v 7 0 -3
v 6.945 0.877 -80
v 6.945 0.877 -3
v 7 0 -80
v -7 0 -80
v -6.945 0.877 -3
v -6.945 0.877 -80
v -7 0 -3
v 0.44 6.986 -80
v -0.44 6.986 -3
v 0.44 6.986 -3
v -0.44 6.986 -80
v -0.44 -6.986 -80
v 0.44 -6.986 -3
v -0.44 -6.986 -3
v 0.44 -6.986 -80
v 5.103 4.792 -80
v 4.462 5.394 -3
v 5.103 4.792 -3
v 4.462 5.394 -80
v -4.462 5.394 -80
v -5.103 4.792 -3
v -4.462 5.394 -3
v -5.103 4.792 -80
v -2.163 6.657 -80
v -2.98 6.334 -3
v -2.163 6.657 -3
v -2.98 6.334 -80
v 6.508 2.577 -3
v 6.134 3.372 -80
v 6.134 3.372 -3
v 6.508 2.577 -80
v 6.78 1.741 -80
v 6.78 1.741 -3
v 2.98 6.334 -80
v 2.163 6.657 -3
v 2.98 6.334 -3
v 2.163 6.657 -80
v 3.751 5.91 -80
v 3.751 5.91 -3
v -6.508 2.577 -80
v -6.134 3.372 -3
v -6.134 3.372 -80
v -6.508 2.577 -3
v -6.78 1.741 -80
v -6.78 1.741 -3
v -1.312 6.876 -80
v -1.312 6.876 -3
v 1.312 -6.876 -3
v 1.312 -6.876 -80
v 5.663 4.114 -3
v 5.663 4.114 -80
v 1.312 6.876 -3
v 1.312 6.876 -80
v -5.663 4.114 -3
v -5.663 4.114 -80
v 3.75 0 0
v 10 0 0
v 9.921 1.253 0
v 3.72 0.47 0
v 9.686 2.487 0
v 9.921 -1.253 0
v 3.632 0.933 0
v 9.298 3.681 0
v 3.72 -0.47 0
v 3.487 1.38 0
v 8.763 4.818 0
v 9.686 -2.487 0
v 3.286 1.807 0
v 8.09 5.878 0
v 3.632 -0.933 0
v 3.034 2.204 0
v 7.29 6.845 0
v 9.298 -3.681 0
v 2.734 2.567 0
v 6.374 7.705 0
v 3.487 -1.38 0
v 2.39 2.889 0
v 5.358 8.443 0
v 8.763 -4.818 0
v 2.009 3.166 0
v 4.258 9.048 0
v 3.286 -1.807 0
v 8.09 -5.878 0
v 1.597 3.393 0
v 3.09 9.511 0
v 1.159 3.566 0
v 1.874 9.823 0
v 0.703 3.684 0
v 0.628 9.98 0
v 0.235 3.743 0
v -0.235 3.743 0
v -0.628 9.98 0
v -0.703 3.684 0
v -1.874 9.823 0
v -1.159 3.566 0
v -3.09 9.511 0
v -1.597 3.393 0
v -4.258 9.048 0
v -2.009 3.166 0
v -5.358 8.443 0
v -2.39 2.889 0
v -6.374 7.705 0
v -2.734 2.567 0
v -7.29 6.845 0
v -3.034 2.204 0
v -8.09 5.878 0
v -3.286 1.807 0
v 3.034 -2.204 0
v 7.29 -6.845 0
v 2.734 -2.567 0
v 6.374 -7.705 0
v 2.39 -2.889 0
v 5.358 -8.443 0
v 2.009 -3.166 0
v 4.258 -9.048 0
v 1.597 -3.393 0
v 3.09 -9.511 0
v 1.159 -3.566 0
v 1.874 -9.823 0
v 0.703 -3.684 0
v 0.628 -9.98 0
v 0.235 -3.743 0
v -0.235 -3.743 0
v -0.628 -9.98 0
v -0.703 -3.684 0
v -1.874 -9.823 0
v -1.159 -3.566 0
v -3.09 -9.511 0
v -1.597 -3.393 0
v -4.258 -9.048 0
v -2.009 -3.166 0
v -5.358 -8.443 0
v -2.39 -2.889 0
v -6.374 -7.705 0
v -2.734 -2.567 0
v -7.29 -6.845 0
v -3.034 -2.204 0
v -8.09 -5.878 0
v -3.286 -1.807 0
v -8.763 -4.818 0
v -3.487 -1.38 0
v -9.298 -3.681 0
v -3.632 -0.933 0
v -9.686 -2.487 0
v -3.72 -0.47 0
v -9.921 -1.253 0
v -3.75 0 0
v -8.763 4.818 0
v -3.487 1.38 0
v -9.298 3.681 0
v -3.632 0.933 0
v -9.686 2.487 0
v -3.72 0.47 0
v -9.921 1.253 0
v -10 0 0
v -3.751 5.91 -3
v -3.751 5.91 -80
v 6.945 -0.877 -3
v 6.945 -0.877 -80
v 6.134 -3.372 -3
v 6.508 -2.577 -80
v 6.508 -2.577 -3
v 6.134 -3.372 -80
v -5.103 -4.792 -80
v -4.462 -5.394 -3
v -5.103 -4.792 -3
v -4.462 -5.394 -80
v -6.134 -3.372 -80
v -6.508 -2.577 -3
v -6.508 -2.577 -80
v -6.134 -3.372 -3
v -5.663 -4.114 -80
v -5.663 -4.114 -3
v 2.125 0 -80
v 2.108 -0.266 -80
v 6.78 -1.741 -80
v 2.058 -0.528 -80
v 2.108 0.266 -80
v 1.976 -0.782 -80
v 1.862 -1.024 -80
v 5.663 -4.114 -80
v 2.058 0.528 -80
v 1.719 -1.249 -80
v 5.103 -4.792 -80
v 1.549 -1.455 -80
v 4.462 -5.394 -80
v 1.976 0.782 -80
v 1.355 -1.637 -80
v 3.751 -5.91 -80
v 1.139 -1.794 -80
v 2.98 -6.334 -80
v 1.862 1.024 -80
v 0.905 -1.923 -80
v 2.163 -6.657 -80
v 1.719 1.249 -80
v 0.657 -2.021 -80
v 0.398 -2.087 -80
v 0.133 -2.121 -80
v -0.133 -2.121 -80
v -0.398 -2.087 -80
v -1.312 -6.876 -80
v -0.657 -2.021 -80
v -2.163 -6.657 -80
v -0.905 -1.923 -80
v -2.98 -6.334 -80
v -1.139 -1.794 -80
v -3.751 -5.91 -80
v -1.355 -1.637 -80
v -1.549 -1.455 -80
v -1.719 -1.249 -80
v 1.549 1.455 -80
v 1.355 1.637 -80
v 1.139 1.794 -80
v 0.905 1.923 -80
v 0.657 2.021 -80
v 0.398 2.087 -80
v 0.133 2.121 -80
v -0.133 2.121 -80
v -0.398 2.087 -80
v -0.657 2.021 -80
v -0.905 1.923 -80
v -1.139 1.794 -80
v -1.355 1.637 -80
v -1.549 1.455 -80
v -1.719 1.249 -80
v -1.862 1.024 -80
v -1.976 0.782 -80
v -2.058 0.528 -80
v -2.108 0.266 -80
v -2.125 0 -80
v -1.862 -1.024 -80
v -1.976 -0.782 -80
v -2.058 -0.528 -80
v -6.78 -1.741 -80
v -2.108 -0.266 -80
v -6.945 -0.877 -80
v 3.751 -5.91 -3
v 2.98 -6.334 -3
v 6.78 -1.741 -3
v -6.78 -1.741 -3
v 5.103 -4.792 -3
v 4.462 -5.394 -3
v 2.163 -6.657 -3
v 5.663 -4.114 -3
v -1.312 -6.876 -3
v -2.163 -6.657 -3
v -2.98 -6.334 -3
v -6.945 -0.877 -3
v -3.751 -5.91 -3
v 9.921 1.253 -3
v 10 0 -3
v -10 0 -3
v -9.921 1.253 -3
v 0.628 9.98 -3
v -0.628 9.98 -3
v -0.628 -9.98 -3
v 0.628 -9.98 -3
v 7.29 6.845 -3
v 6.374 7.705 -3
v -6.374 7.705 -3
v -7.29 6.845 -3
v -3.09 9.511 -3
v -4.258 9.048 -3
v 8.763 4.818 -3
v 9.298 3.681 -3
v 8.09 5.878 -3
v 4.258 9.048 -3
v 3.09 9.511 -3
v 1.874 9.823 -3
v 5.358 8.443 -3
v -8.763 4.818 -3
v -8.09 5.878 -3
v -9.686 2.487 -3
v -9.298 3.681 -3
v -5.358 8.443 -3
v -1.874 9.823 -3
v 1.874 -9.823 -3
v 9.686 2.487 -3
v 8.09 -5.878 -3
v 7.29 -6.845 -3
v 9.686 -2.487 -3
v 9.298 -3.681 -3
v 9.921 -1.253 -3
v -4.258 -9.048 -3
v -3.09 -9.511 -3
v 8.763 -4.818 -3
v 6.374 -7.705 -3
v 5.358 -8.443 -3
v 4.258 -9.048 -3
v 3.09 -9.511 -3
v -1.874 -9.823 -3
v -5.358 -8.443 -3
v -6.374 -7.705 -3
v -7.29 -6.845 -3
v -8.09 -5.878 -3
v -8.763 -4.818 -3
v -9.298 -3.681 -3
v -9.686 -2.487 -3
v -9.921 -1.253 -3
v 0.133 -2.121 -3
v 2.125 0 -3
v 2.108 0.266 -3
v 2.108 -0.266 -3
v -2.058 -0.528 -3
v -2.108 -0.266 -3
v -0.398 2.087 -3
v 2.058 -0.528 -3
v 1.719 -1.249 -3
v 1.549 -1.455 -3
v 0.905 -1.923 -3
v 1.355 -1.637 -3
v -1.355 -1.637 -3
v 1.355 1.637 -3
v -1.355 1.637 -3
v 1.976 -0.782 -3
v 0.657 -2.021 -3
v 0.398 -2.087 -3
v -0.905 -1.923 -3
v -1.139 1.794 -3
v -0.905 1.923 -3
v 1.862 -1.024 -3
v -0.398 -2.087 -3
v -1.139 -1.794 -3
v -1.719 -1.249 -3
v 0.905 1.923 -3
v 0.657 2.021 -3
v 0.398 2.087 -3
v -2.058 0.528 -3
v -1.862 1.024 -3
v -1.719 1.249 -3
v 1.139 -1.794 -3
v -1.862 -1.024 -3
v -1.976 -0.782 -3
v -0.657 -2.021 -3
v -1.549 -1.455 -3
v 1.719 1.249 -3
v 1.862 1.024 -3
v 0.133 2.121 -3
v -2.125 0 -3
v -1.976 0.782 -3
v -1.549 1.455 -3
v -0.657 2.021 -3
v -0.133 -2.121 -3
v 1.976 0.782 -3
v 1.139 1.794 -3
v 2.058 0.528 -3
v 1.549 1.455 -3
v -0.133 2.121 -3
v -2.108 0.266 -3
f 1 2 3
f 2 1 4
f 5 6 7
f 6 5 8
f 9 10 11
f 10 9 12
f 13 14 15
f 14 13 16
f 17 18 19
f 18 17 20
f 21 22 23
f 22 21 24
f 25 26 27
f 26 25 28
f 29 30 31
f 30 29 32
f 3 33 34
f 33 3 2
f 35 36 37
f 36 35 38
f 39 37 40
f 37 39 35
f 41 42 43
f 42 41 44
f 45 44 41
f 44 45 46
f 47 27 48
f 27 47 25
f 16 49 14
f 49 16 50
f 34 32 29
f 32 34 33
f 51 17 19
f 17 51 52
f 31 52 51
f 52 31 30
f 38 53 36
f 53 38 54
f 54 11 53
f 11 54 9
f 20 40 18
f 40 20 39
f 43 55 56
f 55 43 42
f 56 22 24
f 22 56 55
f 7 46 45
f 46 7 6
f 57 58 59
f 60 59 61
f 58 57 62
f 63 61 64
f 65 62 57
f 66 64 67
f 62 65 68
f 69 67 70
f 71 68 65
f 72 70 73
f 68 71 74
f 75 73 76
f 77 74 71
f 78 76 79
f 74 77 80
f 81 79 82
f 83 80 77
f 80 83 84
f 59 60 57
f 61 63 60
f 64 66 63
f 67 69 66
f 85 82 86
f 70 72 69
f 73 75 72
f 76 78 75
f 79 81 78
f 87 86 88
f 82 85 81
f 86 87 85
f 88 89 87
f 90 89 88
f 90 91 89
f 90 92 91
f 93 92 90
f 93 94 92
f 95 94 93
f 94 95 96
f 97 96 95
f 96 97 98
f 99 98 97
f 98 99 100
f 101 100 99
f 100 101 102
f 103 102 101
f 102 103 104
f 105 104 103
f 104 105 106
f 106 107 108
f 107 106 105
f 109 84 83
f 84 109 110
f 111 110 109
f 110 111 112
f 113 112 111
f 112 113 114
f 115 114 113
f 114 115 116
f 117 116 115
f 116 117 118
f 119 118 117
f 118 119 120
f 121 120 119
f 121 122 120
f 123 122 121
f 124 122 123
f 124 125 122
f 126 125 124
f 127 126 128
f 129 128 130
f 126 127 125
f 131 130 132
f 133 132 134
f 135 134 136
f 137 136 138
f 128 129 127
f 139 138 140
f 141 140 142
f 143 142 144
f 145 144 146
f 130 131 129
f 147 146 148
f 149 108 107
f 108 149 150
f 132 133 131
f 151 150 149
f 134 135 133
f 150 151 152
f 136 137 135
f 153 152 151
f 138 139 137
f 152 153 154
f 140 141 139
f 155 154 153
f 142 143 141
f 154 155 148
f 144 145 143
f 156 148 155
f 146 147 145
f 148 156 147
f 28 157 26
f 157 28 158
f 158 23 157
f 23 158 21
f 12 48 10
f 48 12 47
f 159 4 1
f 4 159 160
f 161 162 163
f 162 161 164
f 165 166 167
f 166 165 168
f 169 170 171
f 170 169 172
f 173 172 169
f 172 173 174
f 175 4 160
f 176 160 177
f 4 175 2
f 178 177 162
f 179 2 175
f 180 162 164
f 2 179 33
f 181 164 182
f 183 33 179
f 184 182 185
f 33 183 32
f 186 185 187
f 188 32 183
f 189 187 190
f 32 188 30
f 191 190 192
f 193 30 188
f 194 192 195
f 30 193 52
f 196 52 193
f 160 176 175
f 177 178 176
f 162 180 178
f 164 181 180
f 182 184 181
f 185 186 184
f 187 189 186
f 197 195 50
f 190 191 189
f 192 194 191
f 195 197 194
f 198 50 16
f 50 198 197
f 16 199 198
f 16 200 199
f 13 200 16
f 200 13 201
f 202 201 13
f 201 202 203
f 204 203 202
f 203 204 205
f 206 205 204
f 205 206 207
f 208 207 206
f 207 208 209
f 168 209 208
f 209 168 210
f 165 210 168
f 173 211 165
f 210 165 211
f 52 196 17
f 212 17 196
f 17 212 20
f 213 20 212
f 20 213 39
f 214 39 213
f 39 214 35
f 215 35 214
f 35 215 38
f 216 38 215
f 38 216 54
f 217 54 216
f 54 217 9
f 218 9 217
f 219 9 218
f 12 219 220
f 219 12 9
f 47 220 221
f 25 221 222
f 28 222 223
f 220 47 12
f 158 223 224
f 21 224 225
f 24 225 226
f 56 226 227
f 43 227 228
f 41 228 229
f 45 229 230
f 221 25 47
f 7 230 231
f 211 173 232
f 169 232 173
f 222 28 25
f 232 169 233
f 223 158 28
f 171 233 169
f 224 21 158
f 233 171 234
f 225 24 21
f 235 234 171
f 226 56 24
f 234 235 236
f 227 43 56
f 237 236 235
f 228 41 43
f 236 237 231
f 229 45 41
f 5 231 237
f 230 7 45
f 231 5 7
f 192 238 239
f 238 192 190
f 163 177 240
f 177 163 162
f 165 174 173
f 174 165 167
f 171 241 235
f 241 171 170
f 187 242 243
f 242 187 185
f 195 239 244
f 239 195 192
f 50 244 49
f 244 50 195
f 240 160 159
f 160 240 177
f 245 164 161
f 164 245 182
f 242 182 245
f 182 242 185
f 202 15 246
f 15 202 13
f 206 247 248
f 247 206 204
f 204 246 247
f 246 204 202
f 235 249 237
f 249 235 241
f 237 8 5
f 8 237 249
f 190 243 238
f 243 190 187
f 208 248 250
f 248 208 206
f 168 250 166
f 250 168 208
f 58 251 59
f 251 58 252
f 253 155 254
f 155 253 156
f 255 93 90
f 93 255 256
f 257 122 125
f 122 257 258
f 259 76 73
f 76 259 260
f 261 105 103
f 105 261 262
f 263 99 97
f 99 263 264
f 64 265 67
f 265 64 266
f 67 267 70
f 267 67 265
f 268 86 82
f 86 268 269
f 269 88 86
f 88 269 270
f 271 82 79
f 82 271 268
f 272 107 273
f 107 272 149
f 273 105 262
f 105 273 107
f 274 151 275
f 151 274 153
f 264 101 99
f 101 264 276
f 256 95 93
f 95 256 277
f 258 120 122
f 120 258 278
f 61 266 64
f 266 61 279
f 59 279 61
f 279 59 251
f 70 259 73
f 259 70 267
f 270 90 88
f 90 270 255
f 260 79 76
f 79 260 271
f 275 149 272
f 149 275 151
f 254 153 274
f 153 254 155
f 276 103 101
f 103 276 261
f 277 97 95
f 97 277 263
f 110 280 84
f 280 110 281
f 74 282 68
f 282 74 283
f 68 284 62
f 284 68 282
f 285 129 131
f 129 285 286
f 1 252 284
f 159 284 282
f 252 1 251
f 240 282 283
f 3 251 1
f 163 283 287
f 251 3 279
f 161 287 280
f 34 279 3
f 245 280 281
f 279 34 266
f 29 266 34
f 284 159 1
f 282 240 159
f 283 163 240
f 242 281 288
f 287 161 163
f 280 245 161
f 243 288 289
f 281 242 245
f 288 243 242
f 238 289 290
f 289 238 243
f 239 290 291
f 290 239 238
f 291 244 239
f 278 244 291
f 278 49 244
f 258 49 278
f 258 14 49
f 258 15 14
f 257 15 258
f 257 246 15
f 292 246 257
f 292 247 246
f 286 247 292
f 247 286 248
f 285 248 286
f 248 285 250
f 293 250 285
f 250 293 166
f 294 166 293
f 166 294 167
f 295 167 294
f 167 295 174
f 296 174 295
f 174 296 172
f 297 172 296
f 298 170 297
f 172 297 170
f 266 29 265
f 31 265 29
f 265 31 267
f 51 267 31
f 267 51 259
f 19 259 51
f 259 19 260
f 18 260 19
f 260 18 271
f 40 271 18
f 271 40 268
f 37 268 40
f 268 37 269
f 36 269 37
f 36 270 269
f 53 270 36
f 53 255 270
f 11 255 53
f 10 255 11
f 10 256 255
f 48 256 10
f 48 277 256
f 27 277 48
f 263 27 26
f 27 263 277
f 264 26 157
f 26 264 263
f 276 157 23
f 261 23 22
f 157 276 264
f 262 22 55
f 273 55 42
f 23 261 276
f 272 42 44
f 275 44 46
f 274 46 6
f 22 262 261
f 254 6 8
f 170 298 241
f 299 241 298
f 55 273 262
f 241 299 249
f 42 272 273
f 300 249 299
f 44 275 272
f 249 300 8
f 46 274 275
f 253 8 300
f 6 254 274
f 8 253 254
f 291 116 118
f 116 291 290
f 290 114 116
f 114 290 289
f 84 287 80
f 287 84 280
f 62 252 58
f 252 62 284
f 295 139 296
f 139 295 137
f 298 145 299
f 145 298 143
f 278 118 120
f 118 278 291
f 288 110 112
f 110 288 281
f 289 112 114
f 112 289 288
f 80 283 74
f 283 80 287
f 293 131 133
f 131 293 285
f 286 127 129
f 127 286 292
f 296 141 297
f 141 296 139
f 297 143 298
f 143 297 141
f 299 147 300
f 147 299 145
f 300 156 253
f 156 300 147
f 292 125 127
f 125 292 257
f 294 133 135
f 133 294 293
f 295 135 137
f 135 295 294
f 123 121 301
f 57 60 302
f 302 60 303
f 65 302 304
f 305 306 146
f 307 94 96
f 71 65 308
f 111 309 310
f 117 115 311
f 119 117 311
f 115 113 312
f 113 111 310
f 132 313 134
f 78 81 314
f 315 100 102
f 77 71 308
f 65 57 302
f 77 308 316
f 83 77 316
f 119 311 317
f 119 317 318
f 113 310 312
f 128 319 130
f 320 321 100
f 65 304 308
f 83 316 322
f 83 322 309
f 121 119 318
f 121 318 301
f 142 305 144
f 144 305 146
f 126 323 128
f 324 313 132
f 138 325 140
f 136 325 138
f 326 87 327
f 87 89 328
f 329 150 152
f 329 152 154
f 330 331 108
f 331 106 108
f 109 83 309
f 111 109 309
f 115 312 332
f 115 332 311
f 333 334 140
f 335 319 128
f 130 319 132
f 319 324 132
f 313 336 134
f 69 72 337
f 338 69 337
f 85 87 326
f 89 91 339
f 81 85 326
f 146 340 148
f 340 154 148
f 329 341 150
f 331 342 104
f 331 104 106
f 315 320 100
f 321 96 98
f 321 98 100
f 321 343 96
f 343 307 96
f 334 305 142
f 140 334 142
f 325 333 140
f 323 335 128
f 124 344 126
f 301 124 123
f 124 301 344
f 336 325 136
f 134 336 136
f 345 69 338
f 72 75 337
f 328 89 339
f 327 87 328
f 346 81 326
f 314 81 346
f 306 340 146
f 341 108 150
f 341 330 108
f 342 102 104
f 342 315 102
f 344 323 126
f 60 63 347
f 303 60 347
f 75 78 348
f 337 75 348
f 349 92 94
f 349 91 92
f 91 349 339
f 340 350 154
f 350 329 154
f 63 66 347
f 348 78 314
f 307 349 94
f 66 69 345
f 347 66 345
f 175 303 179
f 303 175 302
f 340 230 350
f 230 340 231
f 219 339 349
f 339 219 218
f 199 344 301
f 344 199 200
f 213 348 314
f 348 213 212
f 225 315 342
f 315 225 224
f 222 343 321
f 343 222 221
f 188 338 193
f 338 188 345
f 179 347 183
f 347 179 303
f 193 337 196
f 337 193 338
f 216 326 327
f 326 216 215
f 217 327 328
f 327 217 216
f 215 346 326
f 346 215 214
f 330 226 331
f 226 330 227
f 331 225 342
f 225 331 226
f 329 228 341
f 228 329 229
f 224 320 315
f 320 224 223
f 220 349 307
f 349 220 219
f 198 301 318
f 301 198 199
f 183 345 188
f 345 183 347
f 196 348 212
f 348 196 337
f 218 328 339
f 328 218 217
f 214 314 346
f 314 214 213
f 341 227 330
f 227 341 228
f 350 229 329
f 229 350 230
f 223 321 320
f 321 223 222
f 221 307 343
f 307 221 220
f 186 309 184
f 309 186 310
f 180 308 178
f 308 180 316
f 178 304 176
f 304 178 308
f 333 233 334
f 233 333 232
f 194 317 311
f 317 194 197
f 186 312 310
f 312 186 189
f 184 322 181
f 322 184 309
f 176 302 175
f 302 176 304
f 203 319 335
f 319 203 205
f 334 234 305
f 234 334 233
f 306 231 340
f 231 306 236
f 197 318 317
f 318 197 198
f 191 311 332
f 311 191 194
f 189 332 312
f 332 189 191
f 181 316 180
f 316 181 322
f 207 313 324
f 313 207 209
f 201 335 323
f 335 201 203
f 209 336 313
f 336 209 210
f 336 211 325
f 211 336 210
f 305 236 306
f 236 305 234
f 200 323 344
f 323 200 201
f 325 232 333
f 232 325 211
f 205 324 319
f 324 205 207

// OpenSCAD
$fn = 50;


difference() {
	union() {
		translate(v = [0, 0, -80.0000000000]) {
			cylinder(h = 80, r = 7.0000000000);
		}
		translate(v = [0, 0, -3.0000000000]) {
			cylinder(h = 3, r = 10.0000000000);
		}
	}
	union() {
		translate(v = [0, 0, 0]) {
			rotate(a = [0, 0, 0]) {
				difference() {
					union() {
						#translate(v = [0, 0, -80.0000000000]) {
							cylinder(h = 80, r = 2.0000000000);
						}
						#translate(v = [0, 0, -3]) {
							cylinder(h = 3, r1 = 2.1250000000, r2 = 3.7500000000);
						}
						#translate(v = [0, 0, -80.0000000000]) {
							cylinder(h = 80, r = 2.1250000000);
						}
						#translate(v = [0, 0, -80.0000000000]) {
							cylinder(h = 80, r = 2.0000000000);
						}
					}
					union();
				}
			}
		}
	}
}
